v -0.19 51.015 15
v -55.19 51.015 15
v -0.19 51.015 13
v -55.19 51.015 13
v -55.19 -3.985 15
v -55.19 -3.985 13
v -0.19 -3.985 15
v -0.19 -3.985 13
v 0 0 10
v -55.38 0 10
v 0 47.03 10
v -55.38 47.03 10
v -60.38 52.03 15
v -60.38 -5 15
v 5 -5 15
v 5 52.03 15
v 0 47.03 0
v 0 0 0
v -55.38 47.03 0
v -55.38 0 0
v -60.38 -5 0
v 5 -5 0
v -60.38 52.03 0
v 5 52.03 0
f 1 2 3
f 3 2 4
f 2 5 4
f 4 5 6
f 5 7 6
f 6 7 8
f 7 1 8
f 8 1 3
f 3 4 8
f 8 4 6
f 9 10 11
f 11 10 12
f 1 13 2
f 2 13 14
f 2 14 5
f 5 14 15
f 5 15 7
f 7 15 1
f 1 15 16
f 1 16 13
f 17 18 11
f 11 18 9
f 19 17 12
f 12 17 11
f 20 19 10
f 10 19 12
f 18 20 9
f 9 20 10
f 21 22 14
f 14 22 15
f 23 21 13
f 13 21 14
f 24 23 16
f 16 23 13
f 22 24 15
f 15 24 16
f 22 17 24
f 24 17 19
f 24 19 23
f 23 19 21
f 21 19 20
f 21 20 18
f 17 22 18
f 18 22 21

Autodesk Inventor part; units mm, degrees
ref_plane "YZ Plane" through (0, 0, 0) normal (1, 0, 0) x (0, 1, 0)
ref_plane "XZ Plane" through (0, 0, 0) normal (0, 1, 0) x (-1, 0, 0)
ref_plane "XY Plane" through (0, 0, 0) normal (0, 0, 1) x (1, 0, 0)
sketch "Sketch3" plane through (0, 0, 0) normal (0, 0, 1) x (1, 0, 0)
  line L0 (0, 0) -> (-55.38, 0)
  line L1 (-55.38, 0) -> (-55.38, 47.03)
  line L2 (-55.38, 47.03) -> (0, 47.03)
  line L3 (0, 47.03) -> (0, 0)
  line L4 (5, -5) -> (5, 52.03)
  line L5 (5, 52.03) -> (-60.38, 52.03)
  line L6 (5, -5) -> (-60.38, -5)
  line L7 (-60.38, -5) -> (-60.38, 52.03)
  dimension "d26" = 47.03
  dimension "d27" = 55.38
extrude "Extrusion10" add sketch "Sketch3" along normal blind 10
sketch "Sketch10" plane through (0, 0, 10) normal (0, 0, 1) x (1, 0, 0)
  line L0 (-60.38, 52.03) -> (5, 52.03)
  line L1 (5, 52.03) -> (5, -5)
  line L2 (5, -5) -> (-60.38, -5)
  line L3 (-60.38, -5) -> (-60.38, 52.03)
  point P0 (0, 0)
extrude "Extrusion11" add sketch "Sketch10" along normal blind 5
sketch "Sketch11" plane through (0, 0, 15) normal (0, 0, 1) x (1, 0, 0)
  line L0 (5, -5) -> (-0.19, -5)
  line L1 (-0.19, -5) -> (-0.19, -3.985)
  line L2 (-0.19, -5) -> (0.825, -5) construction
  line L3 (-0.19, -3.985) -> (-55.19, -3.985)
  line L4 (-55.19, -3.985) -> (-55.19, 51.015)
  line L5 (-55.19, 51.015) -> (-0.19, 51.015)
  line L6 (-0.19, 51.015) -> (-0.19, -3.985)
  point P0 (0, 0)
  point P1 (-60.38, -5)
  point P2 (-60.38, 52.03)
  dimension "d73" = 65.38
  dimension "d76" = 5.19
  dimension "d78" = 1.015
  dimension "d79" = 90
  dimension "d80" = 55
  dimension "d81" = 55
extrude "Extrusion12" cut sketch "Sketch11" against normal blind 2
properties part number "End-Effector"
